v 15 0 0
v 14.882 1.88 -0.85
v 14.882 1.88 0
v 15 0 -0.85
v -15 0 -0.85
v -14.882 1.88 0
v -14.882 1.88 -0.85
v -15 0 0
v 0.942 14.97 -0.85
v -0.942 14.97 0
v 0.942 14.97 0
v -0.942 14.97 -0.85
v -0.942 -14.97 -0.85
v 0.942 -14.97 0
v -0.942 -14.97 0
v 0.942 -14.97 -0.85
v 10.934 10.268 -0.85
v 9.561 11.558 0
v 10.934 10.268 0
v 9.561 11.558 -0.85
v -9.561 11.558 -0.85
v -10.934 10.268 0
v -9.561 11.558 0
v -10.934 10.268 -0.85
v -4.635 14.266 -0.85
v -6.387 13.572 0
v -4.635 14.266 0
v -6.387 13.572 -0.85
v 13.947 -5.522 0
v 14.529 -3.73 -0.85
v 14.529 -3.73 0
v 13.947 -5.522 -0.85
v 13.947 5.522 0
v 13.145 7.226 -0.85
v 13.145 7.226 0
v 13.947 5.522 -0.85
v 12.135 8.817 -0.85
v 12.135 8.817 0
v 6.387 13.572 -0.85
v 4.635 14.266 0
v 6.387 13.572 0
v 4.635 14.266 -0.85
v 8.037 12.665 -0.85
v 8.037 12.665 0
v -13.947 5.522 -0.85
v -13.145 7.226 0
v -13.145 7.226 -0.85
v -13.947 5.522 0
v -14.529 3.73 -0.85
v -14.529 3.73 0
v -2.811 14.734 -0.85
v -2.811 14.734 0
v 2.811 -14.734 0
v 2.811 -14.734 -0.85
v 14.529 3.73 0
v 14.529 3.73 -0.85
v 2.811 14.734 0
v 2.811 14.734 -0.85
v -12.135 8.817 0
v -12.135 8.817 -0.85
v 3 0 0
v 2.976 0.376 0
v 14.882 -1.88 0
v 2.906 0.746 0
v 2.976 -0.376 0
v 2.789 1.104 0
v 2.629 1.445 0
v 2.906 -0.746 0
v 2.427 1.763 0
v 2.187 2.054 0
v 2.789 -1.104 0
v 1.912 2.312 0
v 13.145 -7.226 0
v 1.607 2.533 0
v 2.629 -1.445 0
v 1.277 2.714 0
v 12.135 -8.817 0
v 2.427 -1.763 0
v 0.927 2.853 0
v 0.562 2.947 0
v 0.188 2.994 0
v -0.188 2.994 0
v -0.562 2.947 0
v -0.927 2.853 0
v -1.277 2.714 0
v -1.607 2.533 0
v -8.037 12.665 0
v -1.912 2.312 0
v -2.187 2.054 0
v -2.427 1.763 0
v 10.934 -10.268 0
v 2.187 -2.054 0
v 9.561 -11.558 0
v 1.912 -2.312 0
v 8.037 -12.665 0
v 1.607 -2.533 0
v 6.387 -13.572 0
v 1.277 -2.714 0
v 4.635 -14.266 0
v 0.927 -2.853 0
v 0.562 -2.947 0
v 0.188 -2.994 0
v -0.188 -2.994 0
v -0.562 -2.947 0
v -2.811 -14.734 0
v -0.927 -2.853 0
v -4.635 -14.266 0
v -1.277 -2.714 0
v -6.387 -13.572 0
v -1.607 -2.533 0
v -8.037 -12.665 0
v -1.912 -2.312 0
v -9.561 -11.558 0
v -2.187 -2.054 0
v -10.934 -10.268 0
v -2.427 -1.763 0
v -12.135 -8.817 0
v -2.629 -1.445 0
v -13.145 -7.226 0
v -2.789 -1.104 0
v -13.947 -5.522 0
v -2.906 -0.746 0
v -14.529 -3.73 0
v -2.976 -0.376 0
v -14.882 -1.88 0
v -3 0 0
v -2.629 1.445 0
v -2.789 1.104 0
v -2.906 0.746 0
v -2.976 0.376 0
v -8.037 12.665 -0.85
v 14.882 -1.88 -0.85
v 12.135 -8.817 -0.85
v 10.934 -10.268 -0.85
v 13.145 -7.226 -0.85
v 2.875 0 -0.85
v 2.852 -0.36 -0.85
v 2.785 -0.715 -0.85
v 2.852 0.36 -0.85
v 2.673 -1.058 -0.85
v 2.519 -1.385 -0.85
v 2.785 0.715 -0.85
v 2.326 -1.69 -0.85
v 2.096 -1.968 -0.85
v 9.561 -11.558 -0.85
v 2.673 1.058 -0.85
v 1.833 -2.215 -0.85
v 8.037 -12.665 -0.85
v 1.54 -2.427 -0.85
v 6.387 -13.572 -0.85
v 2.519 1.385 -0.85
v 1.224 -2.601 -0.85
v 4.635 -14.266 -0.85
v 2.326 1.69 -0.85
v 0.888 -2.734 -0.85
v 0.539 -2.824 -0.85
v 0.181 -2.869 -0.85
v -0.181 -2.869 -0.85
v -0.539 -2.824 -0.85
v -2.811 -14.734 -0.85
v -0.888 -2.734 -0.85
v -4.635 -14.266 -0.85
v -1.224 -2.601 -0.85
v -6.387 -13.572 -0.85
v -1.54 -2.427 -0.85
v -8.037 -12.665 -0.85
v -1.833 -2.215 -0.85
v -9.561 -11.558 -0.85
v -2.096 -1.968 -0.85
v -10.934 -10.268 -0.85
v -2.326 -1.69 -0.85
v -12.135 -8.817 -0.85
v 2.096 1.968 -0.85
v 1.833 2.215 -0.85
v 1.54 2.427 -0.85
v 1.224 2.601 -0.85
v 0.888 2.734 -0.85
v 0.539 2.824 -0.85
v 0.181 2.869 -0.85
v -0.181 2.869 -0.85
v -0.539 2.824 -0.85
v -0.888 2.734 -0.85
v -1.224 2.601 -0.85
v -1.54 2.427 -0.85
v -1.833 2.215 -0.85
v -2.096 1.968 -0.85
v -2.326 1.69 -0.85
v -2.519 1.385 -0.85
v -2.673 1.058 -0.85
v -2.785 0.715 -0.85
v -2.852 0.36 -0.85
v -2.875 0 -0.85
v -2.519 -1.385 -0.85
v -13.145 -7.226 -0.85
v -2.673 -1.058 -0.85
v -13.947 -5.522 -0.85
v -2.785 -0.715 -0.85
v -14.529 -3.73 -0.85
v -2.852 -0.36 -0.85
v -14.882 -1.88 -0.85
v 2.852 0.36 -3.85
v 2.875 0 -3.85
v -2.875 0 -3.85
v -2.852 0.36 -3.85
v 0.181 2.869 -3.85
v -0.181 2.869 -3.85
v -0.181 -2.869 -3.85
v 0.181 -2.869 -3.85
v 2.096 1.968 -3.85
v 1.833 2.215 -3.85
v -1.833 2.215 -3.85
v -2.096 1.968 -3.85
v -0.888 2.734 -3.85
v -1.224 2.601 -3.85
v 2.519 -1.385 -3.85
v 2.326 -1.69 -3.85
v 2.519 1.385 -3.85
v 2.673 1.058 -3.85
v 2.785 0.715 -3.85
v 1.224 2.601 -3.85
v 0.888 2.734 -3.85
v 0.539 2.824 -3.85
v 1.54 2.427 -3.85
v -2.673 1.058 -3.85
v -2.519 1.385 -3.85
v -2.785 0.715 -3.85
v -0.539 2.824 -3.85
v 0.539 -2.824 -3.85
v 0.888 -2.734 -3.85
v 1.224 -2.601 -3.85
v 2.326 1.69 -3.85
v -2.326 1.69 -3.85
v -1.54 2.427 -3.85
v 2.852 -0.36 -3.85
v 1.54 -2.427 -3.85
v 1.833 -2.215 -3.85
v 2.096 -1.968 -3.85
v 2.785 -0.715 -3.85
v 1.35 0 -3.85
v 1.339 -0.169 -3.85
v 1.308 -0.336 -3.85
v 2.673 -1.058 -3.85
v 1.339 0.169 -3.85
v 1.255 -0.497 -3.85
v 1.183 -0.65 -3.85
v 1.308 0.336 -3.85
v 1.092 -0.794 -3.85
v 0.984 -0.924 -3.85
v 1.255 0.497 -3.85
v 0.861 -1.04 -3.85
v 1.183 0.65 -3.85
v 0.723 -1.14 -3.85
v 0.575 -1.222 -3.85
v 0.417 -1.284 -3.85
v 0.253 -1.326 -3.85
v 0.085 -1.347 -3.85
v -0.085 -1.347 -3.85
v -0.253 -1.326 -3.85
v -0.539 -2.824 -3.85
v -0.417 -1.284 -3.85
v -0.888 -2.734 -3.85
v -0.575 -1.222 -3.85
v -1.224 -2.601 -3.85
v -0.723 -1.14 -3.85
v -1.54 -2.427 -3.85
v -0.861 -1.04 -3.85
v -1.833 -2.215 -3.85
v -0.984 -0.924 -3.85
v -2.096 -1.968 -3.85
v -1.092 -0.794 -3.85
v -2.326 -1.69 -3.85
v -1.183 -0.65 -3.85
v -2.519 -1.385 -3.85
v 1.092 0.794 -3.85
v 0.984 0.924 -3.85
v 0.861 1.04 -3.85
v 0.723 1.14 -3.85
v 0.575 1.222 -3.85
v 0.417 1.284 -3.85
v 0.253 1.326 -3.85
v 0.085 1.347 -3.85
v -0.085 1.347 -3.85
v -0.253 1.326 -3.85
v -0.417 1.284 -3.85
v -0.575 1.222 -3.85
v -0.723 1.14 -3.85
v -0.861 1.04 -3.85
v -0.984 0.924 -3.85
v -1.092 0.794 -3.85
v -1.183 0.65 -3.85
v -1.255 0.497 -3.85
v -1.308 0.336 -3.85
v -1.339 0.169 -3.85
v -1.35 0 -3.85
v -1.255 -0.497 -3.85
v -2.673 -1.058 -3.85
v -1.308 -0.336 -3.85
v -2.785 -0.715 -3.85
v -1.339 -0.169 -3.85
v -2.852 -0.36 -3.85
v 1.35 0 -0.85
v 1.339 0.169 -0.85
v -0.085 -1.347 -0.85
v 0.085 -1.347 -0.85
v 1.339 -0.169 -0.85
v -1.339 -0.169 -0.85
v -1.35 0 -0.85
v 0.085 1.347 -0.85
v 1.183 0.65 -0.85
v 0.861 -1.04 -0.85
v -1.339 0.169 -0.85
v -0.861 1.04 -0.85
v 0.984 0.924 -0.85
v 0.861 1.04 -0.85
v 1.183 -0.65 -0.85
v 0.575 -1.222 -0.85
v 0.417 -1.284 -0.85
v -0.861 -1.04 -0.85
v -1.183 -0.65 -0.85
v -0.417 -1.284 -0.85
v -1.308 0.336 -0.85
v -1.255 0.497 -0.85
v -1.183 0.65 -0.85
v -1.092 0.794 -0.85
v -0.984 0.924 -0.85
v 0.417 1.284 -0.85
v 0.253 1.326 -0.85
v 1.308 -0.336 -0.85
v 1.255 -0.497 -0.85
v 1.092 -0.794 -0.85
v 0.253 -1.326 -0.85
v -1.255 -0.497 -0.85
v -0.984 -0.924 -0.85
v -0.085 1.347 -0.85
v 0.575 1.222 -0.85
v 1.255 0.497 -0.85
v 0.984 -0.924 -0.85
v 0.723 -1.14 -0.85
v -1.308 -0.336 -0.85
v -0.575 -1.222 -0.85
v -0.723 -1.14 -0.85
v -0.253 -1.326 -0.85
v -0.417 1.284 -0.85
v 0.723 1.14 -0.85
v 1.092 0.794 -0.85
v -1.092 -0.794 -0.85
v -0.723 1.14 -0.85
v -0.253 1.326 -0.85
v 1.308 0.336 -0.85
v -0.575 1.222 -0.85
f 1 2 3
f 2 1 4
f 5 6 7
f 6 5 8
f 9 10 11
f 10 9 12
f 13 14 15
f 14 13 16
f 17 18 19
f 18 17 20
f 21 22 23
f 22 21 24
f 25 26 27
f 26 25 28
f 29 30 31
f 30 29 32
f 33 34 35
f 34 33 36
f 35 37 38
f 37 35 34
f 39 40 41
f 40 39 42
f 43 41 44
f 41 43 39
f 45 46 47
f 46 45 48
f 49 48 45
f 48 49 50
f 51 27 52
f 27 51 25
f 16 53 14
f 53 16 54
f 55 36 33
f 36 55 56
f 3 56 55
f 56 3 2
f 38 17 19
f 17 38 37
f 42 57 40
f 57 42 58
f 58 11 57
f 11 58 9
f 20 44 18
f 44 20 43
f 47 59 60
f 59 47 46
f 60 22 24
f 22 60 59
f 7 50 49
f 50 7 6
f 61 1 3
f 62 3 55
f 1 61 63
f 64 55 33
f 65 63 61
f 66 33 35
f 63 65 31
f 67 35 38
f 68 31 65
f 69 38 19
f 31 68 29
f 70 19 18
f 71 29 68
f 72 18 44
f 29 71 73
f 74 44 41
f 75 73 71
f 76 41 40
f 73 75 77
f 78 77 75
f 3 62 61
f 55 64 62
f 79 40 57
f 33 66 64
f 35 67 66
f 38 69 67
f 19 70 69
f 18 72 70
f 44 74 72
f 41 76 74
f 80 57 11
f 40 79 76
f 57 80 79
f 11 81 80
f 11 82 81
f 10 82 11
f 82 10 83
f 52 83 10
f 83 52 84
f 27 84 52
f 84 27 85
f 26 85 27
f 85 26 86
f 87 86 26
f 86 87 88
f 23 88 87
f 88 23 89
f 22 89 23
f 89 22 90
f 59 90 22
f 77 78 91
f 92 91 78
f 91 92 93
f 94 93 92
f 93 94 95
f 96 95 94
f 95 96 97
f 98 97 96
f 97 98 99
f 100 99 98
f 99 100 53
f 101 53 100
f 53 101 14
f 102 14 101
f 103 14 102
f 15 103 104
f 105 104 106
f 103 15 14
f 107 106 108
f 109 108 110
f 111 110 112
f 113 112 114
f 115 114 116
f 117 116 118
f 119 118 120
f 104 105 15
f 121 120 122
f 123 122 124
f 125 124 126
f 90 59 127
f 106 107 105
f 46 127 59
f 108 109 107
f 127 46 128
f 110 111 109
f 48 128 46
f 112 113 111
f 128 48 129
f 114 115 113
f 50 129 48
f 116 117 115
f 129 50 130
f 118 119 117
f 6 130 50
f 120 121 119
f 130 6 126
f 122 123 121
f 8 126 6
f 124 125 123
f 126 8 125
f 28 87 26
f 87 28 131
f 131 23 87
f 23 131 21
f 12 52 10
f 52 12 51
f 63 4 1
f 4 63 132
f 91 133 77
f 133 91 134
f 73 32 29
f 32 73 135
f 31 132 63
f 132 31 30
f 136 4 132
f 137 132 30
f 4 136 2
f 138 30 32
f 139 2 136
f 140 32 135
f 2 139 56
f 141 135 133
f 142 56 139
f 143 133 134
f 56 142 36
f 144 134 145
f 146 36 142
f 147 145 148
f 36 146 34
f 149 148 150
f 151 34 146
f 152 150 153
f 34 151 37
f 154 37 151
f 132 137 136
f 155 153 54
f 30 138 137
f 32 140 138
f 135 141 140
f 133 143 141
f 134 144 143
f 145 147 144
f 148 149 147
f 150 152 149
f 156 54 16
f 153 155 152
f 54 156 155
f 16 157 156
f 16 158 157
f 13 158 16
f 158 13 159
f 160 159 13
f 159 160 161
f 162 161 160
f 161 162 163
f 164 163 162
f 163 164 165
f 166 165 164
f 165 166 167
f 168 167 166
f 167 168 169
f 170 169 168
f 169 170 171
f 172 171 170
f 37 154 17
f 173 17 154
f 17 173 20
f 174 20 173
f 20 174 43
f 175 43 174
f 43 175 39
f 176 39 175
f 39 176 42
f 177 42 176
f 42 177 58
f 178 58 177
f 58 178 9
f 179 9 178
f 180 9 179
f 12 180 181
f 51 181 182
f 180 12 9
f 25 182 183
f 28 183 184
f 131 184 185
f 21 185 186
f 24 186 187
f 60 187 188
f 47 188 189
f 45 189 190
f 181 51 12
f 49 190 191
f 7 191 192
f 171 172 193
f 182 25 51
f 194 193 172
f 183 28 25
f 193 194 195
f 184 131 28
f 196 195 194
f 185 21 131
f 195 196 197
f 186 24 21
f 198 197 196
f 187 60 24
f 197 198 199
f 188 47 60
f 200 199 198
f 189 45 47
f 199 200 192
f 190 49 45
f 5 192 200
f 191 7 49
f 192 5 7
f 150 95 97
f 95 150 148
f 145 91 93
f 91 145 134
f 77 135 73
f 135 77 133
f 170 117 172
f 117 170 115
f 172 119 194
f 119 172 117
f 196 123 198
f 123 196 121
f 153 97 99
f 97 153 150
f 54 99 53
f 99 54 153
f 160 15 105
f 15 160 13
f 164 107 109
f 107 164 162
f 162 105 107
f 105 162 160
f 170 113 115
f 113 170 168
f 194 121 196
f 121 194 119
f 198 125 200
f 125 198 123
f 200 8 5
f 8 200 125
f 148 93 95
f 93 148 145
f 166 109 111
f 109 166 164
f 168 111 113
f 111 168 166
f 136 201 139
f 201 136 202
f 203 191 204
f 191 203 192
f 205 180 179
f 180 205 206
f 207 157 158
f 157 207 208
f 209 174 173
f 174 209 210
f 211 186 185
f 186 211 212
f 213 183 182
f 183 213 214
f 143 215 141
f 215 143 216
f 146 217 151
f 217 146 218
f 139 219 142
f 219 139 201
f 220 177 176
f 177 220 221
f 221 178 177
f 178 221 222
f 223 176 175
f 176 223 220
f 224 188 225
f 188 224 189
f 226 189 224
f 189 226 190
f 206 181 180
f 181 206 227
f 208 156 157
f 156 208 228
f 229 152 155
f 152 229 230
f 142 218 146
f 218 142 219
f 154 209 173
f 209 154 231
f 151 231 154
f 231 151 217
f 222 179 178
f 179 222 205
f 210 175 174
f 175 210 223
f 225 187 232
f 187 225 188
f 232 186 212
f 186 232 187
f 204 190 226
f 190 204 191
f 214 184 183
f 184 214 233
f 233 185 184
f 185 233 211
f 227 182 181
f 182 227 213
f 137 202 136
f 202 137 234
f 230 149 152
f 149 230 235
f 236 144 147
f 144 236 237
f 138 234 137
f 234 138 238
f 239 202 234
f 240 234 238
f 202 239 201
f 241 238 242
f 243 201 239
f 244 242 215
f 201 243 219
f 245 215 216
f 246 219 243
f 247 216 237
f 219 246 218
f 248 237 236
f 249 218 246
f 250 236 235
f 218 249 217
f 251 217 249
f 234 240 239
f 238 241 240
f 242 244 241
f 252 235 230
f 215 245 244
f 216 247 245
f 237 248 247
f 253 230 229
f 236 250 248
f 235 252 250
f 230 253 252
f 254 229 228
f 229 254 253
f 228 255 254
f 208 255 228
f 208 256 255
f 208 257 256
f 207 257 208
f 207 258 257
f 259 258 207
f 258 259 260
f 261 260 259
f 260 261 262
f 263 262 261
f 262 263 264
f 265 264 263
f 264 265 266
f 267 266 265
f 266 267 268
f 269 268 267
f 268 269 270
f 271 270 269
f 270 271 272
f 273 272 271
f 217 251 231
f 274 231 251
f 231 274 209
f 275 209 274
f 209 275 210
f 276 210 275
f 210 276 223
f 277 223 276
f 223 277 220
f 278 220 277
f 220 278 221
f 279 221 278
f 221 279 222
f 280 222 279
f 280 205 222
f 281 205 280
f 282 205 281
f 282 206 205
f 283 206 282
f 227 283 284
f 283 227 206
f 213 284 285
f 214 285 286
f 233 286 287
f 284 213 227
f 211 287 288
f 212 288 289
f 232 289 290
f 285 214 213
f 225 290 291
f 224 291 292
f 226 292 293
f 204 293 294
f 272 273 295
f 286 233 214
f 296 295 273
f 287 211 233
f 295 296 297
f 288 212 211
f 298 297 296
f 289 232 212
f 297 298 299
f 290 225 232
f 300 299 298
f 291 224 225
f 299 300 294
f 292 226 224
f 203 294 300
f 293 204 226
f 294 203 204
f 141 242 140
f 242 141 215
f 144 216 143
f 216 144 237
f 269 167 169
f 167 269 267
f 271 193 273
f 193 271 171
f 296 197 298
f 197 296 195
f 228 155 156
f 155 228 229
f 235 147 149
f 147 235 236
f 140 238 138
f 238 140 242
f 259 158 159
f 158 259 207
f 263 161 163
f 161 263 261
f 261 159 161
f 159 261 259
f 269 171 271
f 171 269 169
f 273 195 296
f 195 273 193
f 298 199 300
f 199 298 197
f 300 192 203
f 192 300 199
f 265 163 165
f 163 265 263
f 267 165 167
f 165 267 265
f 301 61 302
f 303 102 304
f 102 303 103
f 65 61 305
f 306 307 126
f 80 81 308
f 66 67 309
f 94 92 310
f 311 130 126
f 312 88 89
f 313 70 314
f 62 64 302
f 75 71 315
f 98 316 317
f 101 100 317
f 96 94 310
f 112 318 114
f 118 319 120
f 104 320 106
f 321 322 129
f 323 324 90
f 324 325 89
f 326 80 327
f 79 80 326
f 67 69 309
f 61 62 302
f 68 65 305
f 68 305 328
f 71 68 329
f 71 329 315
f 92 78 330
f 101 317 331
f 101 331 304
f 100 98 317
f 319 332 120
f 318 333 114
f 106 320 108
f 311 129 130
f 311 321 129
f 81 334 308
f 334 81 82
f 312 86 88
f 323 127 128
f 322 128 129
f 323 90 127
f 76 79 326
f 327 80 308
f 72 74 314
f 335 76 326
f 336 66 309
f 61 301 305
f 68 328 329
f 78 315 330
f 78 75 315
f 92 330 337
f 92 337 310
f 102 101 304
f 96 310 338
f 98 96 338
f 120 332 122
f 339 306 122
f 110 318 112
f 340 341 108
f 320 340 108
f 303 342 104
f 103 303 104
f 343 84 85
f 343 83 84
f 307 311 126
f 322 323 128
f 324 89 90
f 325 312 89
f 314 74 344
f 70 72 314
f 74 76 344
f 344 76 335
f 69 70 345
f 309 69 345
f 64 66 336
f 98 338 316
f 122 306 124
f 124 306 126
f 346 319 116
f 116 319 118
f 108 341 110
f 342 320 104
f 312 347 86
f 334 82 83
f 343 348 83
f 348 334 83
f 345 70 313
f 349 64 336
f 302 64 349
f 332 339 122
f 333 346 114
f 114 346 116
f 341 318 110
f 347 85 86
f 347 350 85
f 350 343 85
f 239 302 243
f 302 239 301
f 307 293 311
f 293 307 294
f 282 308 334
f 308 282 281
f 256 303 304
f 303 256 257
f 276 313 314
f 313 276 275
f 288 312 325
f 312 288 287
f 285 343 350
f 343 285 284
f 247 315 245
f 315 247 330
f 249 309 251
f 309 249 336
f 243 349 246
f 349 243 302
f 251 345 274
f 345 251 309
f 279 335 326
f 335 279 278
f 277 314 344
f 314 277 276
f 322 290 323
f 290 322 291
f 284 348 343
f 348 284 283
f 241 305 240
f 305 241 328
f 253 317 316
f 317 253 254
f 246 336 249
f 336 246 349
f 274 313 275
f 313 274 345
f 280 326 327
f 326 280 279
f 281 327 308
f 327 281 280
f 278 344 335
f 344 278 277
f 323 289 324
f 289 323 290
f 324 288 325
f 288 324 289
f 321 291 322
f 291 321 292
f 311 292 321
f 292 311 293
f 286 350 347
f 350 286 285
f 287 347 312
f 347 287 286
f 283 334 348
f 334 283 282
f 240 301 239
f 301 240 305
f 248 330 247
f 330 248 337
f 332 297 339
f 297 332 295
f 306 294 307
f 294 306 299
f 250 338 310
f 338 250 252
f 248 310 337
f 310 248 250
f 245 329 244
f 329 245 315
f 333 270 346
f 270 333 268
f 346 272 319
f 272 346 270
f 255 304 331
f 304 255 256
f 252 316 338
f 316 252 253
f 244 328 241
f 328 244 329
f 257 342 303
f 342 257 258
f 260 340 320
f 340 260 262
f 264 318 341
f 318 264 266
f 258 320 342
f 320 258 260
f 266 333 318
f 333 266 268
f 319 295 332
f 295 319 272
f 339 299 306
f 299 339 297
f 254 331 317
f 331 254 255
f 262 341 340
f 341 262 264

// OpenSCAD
$fn = 50;


difference() {
	union() {
		translate(v = [0, 0, -0.8500000000]) {
			cylinder(h = 0.8500000000, r = 15.0000000000);
		}
		translate(v = [0, 0, -3.8500000000]) {
			cylinder(h = 3.8500000000, r = 2.8750000000);
		}
	}
	union() {
		translate(v = [0, 0, 0]) {
			rotate(a = [0, 0, 0]) {
				difference() {
					union() {
						translate(v = [0, 0, -3.8500000000]) {
							cylinder(h = 3.8500000000, r = 1.0000000000);
						}
						translate(v = [0, 0, -0.8500000000]) {
							cylinder(h = 0.8500000000, r1 = 1.3500000000, r2 = 3.0000000000);
						}
						translate(v = [0, 0, -3.8500000000]) {
							cylinder(h = 3.8500000000, r = 1.3500000000);
						}
						translate(v = [0, 0, -3.8500000000]) {
							cylinder(h = 3.8500000000, r = 1.0000000000);
						}
					}
					union();
				}
			}
		}
	}
}
